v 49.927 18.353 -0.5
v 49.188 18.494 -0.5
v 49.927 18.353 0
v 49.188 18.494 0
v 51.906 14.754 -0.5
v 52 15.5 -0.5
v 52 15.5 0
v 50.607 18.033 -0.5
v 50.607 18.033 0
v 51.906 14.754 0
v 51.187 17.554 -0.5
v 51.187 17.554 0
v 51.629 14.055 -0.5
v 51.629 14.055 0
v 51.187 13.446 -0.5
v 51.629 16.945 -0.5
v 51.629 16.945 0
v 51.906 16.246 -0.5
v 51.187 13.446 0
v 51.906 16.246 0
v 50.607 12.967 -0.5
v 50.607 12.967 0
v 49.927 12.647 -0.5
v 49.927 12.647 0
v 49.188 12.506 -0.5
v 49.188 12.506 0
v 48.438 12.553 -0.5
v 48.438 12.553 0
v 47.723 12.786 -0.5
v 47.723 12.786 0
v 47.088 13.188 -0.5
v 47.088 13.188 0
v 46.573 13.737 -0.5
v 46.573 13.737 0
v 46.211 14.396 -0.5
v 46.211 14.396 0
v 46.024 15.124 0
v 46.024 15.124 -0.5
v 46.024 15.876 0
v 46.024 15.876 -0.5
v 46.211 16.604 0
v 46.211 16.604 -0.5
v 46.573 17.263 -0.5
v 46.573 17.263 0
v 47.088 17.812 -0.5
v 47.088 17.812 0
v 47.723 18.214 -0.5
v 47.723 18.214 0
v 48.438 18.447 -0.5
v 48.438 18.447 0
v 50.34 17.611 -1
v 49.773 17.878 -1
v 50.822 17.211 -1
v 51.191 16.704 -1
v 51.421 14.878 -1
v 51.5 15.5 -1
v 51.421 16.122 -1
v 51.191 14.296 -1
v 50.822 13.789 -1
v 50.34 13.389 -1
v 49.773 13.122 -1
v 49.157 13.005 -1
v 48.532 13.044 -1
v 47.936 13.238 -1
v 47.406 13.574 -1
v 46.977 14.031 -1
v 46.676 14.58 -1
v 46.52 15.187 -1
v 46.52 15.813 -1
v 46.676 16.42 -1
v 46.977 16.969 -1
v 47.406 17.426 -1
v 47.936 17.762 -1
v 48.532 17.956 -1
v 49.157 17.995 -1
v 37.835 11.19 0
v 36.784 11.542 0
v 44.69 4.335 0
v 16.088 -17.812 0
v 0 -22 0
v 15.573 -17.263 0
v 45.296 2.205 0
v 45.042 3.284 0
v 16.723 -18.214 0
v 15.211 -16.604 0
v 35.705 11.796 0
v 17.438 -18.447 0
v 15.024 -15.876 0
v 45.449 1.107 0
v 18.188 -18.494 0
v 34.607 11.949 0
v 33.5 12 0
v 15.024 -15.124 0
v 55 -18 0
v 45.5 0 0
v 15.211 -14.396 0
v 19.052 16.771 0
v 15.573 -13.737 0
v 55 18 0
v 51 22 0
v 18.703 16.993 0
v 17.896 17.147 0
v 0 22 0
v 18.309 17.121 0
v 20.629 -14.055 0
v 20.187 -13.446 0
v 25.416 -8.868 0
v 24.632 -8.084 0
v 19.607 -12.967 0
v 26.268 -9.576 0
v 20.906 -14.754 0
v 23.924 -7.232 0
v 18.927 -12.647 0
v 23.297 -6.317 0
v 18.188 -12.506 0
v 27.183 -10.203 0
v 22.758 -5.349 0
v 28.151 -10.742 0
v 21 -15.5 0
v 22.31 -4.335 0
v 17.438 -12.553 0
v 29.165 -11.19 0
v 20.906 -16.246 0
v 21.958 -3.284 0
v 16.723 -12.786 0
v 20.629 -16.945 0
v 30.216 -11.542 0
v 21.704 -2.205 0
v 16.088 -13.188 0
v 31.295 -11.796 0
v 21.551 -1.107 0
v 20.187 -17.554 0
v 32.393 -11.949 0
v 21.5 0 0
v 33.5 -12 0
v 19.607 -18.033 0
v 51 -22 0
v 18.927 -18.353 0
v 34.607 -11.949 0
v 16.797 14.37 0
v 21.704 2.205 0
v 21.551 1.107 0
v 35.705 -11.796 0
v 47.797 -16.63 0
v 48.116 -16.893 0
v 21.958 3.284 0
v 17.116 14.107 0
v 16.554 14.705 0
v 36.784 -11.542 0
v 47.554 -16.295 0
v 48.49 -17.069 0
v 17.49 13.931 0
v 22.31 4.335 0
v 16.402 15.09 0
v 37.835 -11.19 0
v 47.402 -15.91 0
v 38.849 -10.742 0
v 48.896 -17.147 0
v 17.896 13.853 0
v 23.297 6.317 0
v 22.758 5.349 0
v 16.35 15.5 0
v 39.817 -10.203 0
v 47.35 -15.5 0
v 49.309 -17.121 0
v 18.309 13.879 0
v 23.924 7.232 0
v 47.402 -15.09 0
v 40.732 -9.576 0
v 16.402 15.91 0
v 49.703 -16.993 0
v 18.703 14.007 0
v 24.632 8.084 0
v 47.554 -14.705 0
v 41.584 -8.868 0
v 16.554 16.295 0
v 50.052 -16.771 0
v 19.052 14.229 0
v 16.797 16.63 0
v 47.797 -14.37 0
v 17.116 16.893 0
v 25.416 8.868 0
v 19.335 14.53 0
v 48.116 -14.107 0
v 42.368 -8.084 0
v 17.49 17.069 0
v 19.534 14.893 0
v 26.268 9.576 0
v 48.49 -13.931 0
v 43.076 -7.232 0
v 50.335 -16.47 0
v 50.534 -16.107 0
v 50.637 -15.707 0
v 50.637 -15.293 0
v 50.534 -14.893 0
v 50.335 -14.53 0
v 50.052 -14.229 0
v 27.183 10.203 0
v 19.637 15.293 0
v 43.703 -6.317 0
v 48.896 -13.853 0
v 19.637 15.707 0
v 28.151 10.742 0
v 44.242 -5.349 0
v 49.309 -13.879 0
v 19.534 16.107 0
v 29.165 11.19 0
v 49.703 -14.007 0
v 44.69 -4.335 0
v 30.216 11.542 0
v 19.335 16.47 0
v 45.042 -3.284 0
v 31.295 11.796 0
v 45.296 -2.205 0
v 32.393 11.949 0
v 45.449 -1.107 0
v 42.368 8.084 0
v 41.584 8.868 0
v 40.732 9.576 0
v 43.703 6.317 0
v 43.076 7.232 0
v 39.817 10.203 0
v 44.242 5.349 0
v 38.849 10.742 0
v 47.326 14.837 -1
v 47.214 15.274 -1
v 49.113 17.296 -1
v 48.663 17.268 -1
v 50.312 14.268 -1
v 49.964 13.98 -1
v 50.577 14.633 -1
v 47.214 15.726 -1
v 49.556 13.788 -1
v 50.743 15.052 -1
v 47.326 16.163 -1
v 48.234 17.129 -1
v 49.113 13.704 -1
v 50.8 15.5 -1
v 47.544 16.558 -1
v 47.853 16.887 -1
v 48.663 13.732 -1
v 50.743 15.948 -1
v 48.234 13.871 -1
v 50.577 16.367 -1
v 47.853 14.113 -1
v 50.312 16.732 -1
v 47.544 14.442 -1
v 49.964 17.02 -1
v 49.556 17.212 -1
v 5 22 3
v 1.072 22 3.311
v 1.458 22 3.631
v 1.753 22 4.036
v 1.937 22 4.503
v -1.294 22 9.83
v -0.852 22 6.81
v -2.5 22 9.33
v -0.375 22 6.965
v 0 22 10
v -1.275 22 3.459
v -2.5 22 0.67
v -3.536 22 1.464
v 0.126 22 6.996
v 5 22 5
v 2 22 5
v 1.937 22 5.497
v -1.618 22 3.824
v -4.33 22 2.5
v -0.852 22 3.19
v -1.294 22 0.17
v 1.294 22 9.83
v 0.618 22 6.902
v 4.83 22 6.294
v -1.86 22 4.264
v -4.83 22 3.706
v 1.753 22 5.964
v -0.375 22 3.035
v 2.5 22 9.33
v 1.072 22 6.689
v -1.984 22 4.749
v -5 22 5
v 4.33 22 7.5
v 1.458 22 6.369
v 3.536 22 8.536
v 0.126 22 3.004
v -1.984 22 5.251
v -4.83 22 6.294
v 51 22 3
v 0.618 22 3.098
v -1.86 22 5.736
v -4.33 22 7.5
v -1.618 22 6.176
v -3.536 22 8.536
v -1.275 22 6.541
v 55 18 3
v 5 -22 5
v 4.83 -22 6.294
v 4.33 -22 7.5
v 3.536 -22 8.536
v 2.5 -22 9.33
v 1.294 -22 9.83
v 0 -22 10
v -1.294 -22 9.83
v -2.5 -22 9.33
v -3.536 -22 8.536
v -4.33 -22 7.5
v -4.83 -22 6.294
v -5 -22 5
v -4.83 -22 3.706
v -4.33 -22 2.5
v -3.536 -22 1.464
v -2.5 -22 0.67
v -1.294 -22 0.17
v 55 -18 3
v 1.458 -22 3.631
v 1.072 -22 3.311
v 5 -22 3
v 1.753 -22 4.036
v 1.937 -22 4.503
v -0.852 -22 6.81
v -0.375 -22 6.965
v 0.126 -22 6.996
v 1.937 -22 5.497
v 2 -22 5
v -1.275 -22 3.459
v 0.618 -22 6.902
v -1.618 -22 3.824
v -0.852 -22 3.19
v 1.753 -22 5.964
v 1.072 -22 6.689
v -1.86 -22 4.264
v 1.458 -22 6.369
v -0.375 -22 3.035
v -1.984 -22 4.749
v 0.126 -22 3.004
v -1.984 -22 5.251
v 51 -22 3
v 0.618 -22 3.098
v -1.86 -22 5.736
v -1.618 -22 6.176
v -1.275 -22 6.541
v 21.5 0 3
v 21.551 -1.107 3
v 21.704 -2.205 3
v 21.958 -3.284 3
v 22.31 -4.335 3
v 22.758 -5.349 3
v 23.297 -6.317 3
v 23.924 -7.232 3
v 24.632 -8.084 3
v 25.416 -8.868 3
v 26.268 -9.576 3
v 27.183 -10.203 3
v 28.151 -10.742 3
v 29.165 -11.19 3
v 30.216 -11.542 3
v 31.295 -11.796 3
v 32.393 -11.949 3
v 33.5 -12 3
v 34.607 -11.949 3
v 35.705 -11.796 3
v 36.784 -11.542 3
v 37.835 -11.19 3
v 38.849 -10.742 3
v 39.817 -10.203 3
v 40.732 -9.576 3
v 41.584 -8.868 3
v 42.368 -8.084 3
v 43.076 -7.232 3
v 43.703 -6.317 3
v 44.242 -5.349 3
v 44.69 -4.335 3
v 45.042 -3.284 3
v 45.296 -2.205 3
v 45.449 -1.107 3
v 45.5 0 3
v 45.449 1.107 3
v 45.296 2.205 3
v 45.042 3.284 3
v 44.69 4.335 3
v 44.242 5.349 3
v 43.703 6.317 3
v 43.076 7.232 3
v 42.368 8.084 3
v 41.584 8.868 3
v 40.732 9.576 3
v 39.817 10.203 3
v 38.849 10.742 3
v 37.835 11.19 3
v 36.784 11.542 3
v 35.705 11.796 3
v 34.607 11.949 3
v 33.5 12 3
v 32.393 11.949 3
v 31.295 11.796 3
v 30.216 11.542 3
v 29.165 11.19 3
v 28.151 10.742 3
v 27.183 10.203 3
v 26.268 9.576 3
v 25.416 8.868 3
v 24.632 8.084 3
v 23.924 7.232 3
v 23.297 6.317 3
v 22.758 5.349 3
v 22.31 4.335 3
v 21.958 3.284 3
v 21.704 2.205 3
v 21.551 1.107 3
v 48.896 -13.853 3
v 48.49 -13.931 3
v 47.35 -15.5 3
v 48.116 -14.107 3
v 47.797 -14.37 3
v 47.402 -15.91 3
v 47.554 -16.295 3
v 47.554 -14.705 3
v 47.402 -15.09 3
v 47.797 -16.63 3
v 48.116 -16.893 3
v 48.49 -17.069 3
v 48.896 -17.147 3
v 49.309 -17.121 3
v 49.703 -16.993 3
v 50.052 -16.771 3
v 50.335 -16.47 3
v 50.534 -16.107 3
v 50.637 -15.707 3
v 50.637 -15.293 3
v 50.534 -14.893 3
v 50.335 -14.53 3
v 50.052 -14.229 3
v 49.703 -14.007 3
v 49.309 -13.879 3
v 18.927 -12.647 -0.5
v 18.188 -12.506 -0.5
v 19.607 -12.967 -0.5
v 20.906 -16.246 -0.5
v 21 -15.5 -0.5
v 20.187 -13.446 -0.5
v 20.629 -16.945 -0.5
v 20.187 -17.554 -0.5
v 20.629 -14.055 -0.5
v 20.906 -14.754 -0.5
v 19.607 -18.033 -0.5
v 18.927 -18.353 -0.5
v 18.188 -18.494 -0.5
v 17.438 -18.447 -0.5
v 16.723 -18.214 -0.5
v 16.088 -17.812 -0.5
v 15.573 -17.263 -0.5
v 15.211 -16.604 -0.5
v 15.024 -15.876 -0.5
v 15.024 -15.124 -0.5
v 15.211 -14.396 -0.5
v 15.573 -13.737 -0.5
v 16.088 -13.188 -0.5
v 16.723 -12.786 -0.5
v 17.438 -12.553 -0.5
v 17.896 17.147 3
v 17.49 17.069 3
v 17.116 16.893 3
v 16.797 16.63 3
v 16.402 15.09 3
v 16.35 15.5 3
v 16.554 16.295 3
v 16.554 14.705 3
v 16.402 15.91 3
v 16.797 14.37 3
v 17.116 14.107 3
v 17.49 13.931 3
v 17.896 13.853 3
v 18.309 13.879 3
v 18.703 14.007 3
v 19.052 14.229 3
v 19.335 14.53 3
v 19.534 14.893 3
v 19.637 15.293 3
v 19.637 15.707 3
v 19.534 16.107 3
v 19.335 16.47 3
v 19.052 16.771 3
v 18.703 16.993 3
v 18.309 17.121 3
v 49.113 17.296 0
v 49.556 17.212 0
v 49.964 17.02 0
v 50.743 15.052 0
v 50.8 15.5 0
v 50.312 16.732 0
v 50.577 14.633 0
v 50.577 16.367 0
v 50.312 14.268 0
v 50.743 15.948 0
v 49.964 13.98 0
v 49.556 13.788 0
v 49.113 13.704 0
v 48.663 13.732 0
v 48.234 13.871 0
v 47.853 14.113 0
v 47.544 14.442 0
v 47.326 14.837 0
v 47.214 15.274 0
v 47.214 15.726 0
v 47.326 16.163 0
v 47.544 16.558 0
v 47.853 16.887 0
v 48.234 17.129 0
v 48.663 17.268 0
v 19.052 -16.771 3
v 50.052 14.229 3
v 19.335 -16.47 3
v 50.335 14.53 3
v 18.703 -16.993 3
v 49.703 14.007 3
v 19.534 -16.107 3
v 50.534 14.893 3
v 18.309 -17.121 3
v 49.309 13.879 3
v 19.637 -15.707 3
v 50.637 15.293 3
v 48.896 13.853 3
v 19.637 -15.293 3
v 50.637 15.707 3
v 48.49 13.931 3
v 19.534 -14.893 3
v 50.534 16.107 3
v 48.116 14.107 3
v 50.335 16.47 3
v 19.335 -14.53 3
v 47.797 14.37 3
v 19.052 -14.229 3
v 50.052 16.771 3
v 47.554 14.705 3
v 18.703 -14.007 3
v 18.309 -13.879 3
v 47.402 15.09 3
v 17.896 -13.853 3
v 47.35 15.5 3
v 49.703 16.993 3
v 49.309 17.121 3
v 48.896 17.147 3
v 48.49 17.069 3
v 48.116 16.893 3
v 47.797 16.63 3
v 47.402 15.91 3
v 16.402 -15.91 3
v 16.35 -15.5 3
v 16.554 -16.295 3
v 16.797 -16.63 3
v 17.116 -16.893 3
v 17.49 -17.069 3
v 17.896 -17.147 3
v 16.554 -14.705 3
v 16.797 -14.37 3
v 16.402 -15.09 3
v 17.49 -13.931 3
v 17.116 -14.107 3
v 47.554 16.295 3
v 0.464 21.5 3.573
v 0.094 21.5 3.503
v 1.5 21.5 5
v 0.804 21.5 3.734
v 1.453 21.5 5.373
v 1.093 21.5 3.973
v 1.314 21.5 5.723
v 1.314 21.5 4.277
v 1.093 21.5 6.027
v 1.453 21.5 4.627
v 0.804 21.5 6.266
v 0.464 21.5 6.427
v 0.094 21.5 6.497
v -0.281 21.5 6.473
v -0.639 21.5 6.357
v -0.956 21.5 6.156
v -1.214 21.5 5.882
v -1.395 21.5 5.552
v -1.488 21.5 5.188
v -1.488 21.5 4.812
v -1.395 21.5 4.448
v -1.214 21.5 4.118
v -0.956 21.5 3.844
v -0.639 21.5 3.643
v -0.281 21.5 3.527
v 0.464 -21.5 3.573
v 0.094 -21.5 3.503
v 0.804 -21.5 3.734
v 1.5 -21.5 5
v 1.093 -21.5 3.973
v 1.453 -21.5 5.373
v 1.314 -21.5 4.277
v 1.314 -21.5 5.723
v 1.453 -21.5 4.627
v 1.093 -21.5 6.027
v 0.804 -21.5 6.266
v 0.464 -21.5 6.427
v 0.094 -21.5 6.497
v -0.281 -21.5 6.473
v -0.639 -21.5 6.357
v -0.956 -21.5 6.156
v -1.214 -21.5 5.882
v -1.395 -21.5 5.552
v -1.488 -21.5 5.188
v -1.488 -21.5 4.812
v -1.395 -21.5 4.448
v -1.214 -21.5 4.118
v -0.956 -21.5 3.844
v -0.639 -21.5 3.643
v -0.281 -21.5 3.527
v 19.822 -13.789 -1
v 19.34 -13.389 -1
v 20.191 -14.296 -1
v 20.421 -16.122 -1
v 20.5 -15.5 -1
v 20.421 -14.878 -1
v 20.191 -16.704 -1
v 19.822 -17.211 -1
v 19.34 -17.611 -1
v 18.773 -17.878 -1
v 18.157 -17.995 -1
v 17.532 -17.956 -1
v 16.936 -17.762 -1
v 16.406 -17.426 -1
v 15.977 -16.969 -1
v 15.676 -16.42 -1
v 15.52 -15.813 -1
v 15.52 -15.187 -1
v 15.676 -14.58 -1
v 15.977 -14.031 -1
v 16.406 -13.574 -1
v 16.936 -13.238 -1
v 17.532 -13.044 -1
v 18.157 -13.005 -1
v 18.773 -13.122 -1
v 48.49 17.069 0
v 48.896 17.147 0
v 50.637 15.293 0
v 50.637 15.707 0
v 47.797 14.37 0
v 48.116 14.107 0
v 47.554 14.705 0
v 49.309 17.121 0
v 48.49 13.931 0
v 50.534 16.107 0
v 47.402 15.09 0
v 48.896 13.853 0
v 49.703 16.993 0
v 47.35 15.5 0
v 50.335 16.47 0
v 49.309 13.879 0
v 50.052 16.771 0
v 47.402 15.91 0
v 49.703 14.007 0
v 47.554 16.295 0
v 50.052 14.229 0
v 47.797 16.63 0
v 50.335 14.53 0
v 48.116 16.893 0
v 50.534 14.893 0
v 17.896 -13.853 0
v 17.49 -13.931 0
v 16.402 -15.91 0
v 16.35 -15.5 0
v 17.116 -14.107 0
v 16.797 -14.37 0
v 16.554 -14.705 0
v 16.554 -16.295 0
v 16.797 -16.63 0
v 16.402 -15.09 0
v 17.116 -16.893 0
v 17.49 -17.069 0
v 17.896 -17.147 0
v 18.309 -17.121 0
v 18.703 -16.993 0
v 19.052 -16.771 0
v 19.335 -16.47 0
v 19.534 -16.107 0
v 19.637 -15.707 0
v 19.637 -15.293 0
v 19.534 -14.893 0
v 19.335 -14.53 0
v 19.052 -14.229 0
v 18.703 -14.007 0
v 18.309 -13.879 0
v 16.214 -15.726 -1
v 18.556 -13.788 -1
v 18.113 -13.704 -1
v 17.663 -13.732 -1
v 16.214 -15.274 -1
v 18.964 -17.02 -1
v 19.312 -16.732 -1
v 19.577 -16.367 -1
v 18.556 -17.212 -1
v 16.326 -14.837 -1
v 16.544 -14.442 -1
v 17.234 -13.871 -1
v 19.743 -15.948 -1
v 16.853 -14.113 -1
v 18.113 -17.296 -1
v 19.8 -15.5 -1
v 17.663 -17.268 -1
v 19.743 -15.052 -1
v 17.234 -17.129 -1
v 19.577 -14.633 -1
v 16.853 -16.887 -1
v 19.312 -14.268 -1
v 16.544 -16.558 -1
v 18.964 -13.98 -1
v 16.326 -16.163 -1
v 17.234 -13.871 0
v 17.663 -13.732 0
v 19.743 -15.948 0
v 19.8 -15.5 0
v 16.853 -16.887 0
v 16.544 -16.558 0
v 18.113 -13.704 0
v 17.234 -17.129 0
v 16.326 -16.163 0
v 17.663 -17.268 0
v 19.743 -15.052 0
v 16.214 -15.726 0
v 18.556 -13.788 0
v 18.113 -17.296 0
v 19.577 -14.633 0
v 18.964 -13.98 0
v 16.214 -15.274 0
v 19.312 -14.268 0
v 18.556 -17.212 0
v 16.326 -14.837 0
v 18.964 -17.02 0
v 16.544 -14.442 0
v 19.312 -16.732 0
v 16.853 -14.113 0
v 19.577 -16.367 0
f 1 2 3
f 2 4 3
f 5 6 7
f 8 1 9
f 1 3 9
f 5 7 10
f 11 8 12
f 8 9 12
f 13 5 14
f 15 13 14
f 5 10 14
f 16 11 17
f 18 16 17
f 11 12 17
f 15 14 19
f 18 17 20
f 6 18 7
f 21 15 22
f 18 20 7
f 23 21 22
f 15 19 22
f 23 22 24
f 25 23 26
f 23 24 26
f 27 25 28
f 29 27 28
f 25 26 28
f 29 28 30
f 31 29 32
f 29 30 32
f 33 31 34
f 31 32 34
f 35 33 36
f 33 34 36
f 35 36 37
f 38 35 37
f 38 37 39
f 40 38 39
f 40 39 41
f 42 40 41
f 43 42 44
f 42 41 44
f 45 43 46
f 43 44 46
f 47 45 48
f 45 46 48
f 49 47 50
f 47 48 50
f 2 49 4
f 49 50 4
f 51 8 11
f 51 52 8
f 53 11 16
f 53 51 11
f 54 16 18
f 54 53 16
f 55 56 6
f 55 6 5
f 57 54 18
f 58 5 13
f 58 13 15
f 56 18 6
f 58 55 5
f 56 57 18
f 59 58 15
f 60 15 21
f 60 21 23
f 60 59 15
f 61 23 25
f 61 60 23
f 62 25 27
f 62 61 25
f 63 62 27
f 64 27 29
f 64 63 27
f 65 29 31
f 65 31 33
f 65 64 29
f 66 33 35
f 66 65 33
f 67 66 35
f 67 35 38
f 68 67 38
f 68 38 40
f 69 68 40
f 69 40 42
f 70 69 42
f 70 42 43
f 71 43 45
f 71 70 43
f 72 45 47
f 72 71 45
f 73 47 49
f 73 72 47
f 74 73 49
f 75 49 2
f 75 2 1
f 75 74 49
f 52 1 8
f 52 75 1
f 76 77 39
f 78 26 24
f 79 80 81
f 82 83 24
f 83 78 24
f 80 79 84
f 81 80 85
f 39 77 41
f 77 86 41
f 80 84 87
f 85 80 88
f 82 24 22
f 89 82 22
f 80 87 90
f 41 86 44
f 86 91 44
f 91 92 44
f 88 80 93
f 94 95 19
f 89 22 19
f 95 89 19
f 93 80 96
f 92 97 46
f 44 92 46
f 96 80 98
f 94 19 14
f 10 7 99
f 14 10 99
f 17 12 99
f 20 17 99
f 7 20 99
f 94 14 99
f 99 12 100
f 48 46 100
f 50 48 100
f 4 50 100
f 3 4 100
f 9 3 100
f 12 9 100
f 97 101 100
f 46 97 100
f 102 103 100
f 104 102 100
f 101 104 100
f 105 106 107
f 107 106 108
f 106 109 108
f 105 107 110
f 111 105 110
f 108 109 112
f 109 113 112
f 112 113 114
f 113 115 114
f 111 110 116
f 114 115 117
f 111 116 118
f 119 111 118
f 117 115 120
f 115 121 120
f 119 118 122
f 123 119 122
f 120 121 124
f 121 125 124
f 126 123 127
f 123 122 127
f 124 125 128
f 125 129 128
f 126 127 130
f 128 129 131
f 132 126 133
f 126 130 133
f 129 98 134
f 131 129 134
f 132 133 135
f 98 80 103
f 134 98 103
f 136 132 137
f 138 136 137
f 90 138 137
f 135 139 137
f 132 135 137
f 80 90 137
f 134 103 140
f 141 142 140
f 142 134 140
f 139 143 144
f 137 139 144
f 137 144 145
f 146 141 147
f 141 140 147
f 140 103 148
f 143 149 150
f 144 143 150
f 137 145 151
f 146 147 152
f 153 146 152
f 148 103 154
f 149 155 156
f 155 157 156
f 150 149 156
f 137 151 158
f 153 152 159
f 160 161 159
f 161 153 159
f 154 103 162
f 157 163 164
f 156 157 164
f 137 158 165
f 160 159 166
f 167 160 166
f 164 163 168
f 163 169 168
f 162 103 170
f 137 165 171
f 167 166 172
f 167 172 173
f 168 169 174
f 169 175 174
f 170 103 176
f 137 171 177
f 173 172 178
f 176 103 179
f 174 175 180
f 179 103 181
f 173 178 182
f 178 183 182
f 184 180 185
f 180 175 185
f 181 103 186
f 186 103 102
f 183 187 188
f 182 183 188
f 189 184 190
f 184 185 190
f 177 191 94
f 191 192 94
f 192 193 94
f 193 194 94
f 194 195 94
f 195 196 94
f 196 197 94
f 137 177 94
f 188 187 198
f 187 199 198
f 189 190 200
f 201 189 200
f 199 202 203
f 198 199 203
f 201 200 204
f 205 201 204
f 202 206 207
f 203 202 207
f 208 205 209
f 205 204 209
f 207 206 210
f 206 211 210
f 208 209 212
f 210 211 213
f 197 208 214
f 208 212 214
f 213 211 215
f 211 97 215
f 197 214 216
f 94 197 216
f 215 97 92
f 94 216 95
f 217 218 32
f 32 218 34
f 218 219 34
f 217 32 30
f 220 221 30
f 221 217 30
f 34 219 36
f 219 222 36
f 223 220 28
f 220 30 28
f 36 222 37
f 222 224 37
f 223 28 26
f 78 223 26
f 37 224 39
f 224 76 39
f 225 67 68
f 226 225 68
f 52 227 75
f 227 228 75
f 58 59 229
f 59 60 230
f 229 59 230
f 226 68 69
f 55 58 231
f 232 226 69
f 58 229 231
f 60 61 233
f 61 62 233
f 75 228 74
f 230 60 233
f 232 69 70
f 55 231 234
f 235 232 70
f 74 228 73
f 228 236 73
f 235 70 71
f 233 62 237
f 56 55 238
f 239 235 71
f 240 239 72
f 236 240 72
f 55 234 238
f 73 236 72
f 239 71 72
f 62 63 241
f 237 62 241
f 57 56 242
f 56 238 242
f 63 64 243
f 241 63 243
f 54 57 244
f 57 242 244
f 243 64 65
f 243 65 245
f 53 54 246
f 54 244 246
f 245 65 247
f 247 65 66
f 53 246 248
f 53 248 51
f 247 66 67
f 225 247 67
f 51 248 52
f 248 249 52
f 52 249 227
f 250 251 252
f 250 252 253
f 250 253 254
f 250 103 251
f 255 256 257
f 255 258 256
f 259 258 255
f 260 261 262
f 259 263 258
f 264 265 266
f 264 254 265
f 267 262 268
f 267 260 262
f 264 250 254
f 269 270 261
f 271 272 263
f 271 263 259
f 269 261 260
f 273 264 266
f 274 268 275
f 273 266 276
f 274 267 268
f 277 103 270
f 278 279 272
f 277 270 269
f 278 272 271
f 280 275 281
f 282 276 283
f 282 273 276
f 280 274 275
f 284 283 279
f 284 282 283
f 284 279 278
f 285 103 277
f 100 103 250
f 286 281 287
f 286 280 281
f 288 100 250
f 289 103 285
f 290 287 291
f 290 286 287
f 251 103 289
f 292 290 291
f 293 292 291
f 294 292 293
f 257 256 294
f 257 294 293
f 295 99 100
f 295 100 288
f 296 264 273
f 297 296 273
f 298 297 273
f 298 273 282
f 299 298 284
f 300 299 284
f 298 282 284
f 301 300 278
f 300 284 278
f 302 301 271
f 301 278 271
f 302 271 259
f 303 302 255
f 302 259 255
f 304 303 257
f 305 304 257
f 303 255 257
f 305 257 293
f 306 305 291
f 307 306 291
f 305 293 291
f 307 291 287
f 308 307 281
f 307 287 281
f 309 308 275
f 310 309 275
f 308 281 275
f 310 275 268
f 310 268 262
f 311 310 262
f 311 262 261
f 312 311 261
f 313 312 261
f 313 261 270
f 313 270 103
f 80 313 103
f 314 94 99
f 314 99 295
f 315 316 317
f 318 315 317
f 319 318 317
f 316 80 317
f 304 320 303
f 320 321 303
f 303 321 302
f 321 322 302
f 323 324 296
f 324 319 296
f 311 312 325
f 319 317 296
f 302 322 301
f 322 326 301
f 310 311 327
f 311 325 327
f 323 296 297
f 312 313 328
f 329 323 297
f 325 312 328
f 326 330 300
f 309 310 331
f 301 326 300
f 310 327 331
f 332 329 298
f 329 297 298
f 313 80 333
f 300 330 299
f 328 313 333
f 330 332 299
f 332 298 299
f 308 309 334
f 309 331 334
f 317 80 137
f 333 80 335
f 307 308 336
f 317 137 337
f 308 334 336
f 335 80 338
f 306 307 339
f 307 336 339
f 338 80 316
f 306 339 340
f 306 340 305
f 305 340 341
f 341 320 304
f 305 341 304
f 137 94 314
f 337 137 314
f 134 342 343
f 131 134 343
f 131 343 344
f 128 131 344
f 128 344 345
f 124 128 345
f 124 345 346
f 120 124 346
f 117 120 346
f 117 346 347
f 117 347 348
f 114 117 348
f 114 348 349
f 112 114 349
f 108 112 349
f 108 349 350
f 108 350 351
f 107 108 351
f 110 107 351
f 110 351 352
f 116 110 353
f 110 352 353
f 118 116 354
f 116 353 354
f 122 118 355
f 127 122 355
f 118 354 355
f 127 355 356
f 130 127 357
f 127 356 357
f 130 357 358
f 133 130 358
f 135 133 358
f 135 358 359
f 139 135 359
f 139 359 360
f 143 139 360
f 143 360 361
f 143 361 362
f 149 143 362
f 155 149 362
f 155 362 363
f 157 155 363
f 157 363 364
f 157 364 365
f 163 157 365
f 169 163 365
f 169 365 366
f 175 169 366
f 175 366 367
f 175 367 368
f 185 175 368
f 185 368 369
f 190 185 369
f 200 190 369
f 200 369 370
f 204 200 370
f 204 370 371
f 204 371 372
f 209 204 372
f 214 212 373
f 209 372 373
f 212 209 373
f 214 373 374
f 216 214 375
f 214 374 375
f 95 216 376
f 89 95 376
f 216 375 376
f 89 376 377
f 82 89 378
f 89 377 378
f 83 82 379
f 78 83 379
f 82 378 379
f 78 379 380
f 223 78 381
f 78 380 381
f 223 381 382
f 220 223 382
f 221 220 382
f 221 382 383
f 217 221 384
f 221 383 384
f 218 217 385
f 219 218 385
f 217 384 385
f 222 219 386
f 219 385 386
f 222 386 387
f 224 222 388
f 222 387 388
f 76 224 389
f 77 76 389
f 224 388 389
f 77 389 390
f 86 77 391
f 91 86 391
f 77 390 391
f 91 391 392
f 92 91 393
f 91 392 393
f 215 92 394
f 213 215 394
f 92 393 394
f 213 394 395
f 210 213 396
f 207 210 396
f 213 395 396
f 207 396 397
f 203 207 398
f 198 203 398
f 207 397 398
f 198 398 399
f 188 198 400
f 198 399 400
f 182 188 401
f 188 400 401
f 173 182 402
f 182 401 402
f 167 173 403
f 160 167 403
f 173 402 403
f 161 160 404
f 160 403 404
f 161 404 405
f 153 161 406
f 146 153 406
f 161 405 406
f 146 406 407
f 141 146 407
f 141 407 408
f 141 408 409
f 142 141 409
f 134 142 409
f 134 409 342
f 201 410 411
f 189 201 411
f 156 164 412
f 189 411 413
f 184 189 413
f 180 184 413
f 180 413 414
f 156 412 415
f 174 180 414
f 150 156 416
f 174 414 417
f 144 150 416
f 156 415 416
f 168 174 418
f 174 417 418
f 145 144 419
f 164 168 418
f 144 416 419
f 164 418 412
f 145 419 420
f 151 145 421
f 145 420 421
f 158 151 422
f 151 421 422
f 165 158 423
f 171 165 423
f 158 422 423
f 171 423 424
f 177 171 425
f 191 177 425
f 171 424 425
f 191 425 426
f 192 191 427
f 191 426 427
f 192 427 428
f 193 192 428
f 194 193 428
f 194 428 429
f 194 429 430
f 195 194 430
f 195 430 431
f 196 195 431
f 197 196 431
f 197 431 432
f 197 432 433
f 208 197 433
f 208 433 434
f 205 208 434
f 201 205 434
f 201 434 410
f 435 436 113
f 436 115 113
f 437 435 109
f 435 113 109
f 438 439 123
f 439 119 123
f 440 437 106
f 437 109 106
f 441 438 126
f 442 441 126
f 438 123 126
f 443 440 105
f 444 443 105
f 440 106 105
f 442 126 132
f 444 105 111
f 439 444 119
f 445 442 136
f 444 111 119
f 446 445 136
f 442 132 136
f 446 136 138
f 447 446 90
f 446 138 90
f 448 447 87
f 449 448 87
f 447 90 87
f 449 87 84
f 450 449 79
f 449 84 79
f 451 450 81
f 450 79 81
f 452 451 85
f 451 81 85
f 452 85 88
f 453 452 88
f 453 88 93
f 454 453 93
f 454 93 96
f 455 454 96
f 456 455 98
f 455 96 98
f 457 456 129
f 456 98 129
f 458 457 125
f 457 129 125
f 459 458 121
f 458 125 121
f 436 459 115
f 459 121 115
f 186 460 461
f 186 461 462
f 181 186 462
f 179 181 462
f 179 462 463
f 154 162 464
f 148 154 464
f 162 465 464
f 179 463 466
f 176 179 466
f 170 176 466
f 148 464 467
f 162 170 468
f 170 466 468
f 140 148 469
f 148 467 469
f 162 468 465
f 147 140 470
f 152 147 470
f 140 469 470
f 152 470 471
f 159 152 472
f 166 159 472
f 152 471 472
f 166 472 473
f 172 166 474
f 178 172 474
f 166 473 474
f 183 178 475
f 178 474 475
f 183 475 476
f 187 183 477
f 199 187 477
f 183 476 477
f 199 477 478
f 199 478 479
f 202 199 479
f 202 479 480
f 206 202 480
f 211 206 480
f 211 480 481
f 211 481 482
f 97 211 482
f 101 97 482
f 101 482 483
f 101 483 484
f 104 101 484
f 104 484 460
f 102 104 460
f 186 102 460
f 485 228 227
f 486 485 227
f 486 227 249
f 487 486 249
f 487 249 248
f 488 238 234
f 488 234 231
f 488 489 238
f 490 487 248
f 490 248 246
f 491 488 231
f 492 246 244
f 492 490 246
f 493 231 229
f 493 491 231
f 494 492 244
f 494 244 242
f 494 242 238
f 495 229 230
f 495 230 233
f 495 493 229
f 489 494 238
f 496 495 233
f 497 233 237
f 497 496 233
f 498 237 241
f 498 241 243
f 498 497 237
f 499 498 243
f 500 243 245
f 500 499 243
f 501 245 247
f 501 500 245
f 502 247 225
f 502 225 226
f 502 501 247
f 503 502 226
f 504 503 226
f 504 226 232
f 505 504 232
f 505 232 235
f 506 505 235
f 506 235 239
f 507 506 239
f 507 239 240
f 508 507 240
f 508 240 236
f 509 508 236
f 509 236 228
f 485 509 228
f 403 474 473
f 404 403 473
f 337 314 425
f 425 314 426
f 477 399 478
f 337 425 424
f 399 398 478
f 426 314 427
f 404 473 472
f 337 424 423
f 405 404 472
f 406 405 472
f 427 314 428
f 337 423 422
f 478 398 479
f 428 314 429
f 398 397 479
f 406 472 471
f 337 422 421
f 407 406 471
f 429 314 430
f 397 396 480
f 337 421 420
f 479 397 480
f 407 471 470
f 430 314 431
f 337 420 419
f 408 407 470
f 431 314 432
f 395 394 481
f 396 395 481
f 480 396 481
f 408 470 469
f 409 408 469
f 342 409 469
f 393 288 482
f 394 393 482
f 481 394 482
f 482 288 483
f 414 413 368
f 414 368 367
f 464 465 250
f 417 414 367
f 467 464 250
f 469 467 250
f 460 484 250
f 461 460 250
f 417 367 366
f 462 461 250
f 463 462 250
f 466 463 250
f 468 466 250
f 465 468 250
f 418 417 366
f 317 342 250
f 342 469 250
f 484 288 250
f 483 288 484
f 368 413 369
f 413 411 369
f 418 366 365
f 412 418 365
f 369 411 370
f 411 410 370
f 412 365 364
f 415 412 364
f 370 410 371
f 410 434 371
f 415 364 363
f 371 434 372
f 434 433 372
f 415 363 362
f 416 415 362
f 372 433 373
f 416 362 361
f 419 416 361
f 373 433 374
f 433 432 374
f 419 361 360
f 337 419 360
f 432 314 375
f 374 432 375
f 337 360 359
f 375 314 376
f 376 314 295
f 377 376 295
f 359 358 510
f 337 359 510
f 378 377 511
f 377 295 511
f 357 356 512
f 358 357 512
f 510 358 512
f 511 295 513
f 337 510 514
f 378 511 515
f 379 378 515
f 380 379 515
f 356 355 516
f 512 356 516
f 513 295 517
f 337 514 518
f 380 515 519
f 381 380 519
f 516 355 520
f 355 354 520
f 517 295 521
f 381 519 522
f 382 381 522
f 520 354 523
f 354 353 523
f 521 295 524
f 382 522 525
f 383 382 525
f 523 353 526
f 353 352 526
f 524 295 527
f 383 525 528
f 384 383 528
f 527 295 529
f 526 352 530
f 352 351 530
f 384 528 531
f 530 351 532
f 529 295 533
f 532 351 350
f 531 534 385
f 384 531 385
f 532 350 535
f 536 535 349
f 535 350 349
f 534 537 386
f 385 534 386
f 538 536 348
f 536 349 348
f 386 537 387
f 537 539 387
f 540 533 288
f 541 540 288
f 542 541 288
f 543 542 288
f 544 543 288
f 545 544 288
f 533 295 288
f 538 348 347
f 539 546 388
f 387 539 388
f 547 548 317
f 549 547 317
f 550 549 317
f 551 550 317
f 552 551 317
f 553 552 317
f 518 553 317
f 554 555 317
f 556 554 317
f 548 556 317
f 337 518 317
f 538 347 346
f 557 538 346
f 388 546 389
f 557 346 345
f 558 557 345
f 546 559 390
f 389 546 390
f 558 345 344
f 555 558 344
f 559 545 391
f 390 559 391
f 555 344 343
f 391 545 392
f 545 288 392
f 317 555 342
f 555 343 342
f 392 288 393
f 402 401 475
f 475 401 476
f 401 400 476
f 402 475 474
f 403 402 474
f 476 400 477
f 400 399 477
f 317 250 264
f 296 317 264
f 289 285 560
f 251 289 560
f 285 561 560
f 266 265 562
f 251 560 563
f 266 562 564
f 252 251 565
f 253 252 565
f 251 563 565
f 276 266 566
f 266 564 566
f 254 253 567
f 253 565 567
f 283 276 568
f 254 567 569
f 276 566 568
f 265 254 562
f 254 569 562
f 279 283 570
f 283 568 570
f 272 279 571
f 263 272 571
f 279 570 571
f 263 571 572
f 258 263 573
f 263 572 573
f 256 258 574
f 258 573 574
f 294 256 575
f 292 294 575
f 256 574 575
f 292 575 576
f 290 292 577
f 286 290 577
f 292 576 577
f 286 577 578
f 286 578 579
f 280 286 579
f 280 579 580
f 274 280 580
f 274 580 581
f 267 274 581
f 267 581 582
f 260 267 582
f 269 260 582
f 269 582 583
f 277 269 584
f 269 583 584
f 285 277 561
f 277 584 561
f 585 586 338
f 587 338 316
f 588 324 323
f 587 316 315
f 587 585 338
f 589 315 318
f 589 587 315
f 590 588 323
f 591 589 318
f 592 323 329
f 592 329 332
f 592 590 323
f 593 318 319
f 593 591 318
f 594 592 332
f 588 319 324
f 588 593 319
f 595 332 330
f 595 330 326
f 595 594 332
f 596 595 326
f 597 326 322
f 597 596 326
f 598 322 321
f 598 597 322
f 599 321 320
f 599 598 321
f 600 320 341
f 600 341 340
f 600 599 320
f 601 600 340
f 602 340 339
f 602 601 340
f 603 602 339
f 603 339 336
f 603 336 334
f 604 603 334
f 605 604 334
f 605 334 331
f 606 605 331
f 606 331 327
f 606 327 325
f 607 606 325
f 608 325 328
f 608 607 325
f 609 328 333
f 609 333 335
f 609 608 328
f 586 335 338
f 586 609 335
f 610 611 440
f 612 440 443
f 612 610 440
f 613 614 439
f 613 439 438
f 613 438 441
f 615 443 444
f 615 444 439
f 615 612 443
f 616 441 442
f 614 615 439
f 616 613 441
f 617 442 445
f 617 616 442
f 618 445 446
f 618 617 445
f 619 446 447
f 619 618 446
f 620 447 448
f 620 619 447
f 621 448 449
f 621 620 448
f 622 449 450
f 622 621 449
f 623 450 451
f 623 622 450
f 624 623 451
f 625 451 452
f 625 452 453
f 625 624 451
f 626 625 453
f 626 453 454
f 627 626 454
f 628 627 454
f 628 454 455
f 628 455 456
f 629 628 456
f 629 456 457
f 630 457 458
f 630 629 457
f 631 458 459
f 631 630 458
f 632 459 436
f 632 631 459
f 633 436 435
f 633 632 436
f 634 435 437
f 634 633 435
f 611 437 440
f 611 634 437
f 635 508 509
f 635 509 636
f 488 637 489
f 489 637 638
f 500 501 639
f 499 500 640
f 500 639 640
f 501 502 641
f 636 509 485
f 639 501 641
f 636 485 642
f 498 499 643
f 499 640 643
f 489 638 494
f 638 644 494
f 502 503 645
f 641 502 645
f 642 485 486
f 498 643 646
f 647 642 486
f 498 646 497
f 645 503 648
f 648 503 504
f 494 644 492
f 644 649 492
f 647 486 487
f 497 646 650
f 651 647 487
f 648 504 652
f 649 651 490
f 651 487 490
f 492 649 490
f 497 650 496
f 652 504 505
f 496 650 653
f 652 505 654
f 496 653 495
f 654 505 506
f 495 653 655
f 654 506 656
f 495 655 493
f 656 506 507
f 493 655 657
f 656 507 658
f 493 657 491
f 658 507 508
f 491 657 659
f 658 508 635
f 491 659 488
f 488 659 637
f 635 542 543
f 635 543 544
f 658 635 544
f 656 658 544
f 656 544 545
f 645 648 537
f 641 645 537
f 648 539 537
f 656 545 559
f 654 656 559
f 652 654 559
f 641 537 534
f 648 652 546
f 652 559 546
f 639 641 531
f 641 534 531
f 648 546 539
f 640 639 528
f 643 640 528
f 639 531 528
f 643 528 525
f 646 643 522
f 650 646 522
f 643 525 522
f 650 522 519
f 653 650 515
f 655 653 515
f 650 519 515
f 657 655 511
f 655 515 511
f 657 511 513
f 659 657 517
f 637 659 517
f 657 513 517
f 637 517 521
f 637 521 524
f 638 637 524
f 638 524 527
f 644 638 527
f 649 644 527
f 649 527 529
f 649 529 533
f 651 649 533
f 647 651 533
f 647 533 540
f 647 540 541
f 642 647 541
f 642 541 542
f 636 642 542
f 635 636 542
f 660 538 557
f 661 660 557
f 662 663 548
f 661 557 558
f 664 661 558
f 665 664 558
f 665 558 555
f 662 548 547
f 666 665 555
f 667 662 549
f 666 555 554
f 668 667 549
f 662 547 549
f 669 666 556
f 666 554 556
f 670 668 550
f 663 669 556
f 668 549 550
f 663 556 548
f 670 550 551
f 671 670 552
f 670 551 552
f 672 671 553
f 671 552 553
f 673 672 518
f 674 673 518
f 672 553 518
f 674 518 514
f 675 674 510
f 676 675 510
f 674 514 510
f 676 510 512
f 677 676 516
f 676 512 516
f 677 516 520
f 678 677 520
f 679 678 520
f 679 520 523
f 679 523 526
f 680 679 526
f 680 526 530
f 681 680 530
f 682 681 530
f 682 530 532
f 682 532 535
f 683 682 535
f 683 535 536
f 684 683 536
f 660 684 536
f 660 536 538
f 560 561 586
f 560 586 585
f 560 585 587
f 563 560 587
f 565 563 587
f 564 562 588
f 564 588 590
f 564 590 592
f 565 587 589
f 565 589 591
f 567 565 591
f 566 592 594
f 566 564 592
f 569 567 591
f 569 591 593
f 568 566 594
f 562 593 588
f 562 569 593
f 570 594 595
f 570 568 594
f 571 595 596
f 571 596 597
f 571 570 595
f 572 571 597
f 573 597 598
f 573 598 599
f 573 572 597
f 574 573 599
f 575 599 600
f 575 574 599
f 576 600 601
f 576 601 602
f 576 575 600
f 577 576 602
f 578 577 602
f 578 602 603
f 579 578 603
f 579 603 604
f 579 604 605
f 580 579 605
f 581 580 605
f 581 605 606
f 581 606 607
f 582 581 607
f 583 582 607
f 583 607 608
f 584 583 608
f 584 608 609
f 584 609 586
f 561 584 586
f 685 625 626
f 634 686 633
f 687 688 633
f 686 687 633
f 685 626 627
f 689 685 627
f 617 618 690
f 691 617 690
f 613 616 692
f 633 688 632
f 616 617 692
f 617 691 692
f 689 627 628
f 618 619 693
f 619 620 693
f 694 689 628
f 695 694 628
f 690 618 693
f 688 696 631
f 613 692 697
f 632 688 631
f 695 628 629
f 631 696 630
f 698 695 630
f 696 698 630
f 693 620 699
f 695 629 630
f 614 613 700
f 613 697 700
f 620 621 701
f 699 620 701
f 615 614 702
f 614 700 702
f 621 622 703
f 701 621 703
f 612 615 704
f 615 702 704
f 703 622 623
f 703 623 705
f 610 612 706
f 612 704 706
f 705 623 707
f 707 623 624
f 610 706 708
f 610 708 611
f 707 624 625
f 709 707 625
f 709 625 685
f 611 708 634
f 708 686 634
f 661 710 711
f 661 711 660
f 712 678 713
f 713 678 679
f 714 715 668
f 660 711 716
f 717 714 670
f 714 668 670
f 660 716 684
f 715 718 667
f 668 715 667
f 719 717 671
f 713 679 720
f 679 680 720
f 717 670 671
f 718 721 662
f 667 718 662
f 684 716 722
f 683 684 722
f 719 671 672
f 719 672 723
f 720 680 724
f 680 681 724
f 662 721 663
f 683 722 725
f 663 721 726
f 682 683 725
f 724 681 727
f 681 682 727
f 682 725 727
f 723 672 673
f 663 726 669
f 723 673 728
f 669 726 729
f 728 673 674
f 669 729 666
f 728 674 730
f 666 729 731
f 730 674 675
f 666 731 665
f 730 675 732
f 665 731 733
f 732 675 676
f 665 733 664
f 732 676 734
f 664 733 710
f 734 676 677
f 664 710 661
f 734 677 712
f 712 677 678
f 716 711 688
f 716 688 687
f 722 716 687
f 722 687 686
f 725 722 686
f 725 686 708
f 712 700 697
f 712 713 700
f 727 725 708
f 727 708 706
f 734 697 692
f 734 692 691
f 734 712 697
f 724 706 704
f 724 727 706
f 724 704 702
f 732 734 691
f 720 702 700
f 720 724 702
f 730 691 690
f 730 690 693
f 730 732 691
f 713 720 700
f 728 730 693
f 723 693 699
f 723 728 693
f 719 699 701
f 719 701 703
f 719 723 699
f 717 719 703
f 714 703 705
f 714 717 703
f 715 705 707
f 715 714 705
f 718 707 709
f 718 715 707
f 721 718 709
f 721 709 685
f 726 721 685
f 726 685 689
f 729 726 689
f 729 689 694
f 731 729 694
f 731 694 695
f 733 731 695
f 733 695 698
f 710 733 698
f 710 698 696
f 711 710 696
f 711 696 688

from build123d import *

# Parameters (mm, degrees)
SKETCH_R        = 1.5
PAD_DEPTH       = 22
SKETCH001_R     = 12
SKETCH001_R_2   = 1.65
POCKET_DEPTH    = 3.001
CHAMFER_SIZE    = 0.5
CHAMFER001_SIZE = 4
SKETCH002_R     = 3
SKETCH002_R_2   = 1.8
PAD001_DEPTH    = 1
CHAMFER002_SIZE = 0.5


with BuildPart() as part:
    # Sketch → Pad (new body, symmetric)
    with BuildSketch(Plane.XZ):
        with BuildLine():
            ThreePointArc((5, 5.000025), (-3.535543, 8.535525), (0, 0))
            Line((0, 0), (55, 0))
            Line((55, 0), (55, 3))
            Line((55, 3), (5, 3))
            Line((5, 3), (5, 5.000025))
        make_face()
        with Locations((0, 5)):
            Circle(SKETCH_R, mode=Mode.SUBTRACT)
    extrude(amount=PAD_DEPTH, both=True)

    # Sketch001 → Pocket (cut, through all)
    with BuildSketch(Plane(origin=(0, 0, 3), x_dir=(-1, 0, 0), z_dir=(0, 0, 1))):
        with Locations((-33.5, 0)):
            Circle(SKETCH001_R)
        with Locations((-49, 15.5)):
            Circle(SKETCH001_R_2)
        with Locations((-18, 15.5)):
            Circle(SKETCH001_R_2)
        with Locations((-18, -15.5)):
            Circle(SKETCH001_R_2)
        with Locations((-49, -15.5)):
            Circle(SKETCH001_R_2)
    extrude(amount=-POCKET_DEPTH, mode=Mode.SUBTRACT)

    # Chamfer
    chamfer_edges = [part.edges().sort_by_distance(p)[0] for p in [
        (-1.5, -22, 5),
        (-1.5, 22, 5),
    ]]
    chamfer(chamfer_edges, length=CHAMFER_SIZE)

    # Chamfer001
    chamfer001_edges = [part.edges().sort_by_distance(p)[0] for p in [
        (55, 22, 1.5),
        (55, -22, 1.5),
    ]]
    chamfer(chamfer001_edges, length=CHAMFER001_SIZE)

    # Sketch002 → Pad001 (new body)
    with BuildSketch(Plane(origin=(0, 0, 0), x_dir=(1, 0, 0), z_dir=(0, 0, -1))):
        with Locations((49, -15.5)):
            Circle(SKETCH002_R)
        with Locations((49, -15.5)):
            Circle(SKETCH002_R_2, mode=Mode.SUBTRACT)
        with Locations((18, 15.5)):
            Circle(SKETCH002_R)
        with Locations((18, 15.5)):
            Circle(SKETCH002_R_2, mode=Mode.SUBTRACT)
    extrude(amount=PAD001_DEPTH)

    # Chamfer002
    chamfer002_edges = [part.edges().sort_by_distance(p)[0] for p in [
        (46, 15.5, -1),
        (15, -15.5, -1),
    ]]
    chamfer(chamfer002_edges, length=CHAMFER002_SIZE)


solid = part.part
